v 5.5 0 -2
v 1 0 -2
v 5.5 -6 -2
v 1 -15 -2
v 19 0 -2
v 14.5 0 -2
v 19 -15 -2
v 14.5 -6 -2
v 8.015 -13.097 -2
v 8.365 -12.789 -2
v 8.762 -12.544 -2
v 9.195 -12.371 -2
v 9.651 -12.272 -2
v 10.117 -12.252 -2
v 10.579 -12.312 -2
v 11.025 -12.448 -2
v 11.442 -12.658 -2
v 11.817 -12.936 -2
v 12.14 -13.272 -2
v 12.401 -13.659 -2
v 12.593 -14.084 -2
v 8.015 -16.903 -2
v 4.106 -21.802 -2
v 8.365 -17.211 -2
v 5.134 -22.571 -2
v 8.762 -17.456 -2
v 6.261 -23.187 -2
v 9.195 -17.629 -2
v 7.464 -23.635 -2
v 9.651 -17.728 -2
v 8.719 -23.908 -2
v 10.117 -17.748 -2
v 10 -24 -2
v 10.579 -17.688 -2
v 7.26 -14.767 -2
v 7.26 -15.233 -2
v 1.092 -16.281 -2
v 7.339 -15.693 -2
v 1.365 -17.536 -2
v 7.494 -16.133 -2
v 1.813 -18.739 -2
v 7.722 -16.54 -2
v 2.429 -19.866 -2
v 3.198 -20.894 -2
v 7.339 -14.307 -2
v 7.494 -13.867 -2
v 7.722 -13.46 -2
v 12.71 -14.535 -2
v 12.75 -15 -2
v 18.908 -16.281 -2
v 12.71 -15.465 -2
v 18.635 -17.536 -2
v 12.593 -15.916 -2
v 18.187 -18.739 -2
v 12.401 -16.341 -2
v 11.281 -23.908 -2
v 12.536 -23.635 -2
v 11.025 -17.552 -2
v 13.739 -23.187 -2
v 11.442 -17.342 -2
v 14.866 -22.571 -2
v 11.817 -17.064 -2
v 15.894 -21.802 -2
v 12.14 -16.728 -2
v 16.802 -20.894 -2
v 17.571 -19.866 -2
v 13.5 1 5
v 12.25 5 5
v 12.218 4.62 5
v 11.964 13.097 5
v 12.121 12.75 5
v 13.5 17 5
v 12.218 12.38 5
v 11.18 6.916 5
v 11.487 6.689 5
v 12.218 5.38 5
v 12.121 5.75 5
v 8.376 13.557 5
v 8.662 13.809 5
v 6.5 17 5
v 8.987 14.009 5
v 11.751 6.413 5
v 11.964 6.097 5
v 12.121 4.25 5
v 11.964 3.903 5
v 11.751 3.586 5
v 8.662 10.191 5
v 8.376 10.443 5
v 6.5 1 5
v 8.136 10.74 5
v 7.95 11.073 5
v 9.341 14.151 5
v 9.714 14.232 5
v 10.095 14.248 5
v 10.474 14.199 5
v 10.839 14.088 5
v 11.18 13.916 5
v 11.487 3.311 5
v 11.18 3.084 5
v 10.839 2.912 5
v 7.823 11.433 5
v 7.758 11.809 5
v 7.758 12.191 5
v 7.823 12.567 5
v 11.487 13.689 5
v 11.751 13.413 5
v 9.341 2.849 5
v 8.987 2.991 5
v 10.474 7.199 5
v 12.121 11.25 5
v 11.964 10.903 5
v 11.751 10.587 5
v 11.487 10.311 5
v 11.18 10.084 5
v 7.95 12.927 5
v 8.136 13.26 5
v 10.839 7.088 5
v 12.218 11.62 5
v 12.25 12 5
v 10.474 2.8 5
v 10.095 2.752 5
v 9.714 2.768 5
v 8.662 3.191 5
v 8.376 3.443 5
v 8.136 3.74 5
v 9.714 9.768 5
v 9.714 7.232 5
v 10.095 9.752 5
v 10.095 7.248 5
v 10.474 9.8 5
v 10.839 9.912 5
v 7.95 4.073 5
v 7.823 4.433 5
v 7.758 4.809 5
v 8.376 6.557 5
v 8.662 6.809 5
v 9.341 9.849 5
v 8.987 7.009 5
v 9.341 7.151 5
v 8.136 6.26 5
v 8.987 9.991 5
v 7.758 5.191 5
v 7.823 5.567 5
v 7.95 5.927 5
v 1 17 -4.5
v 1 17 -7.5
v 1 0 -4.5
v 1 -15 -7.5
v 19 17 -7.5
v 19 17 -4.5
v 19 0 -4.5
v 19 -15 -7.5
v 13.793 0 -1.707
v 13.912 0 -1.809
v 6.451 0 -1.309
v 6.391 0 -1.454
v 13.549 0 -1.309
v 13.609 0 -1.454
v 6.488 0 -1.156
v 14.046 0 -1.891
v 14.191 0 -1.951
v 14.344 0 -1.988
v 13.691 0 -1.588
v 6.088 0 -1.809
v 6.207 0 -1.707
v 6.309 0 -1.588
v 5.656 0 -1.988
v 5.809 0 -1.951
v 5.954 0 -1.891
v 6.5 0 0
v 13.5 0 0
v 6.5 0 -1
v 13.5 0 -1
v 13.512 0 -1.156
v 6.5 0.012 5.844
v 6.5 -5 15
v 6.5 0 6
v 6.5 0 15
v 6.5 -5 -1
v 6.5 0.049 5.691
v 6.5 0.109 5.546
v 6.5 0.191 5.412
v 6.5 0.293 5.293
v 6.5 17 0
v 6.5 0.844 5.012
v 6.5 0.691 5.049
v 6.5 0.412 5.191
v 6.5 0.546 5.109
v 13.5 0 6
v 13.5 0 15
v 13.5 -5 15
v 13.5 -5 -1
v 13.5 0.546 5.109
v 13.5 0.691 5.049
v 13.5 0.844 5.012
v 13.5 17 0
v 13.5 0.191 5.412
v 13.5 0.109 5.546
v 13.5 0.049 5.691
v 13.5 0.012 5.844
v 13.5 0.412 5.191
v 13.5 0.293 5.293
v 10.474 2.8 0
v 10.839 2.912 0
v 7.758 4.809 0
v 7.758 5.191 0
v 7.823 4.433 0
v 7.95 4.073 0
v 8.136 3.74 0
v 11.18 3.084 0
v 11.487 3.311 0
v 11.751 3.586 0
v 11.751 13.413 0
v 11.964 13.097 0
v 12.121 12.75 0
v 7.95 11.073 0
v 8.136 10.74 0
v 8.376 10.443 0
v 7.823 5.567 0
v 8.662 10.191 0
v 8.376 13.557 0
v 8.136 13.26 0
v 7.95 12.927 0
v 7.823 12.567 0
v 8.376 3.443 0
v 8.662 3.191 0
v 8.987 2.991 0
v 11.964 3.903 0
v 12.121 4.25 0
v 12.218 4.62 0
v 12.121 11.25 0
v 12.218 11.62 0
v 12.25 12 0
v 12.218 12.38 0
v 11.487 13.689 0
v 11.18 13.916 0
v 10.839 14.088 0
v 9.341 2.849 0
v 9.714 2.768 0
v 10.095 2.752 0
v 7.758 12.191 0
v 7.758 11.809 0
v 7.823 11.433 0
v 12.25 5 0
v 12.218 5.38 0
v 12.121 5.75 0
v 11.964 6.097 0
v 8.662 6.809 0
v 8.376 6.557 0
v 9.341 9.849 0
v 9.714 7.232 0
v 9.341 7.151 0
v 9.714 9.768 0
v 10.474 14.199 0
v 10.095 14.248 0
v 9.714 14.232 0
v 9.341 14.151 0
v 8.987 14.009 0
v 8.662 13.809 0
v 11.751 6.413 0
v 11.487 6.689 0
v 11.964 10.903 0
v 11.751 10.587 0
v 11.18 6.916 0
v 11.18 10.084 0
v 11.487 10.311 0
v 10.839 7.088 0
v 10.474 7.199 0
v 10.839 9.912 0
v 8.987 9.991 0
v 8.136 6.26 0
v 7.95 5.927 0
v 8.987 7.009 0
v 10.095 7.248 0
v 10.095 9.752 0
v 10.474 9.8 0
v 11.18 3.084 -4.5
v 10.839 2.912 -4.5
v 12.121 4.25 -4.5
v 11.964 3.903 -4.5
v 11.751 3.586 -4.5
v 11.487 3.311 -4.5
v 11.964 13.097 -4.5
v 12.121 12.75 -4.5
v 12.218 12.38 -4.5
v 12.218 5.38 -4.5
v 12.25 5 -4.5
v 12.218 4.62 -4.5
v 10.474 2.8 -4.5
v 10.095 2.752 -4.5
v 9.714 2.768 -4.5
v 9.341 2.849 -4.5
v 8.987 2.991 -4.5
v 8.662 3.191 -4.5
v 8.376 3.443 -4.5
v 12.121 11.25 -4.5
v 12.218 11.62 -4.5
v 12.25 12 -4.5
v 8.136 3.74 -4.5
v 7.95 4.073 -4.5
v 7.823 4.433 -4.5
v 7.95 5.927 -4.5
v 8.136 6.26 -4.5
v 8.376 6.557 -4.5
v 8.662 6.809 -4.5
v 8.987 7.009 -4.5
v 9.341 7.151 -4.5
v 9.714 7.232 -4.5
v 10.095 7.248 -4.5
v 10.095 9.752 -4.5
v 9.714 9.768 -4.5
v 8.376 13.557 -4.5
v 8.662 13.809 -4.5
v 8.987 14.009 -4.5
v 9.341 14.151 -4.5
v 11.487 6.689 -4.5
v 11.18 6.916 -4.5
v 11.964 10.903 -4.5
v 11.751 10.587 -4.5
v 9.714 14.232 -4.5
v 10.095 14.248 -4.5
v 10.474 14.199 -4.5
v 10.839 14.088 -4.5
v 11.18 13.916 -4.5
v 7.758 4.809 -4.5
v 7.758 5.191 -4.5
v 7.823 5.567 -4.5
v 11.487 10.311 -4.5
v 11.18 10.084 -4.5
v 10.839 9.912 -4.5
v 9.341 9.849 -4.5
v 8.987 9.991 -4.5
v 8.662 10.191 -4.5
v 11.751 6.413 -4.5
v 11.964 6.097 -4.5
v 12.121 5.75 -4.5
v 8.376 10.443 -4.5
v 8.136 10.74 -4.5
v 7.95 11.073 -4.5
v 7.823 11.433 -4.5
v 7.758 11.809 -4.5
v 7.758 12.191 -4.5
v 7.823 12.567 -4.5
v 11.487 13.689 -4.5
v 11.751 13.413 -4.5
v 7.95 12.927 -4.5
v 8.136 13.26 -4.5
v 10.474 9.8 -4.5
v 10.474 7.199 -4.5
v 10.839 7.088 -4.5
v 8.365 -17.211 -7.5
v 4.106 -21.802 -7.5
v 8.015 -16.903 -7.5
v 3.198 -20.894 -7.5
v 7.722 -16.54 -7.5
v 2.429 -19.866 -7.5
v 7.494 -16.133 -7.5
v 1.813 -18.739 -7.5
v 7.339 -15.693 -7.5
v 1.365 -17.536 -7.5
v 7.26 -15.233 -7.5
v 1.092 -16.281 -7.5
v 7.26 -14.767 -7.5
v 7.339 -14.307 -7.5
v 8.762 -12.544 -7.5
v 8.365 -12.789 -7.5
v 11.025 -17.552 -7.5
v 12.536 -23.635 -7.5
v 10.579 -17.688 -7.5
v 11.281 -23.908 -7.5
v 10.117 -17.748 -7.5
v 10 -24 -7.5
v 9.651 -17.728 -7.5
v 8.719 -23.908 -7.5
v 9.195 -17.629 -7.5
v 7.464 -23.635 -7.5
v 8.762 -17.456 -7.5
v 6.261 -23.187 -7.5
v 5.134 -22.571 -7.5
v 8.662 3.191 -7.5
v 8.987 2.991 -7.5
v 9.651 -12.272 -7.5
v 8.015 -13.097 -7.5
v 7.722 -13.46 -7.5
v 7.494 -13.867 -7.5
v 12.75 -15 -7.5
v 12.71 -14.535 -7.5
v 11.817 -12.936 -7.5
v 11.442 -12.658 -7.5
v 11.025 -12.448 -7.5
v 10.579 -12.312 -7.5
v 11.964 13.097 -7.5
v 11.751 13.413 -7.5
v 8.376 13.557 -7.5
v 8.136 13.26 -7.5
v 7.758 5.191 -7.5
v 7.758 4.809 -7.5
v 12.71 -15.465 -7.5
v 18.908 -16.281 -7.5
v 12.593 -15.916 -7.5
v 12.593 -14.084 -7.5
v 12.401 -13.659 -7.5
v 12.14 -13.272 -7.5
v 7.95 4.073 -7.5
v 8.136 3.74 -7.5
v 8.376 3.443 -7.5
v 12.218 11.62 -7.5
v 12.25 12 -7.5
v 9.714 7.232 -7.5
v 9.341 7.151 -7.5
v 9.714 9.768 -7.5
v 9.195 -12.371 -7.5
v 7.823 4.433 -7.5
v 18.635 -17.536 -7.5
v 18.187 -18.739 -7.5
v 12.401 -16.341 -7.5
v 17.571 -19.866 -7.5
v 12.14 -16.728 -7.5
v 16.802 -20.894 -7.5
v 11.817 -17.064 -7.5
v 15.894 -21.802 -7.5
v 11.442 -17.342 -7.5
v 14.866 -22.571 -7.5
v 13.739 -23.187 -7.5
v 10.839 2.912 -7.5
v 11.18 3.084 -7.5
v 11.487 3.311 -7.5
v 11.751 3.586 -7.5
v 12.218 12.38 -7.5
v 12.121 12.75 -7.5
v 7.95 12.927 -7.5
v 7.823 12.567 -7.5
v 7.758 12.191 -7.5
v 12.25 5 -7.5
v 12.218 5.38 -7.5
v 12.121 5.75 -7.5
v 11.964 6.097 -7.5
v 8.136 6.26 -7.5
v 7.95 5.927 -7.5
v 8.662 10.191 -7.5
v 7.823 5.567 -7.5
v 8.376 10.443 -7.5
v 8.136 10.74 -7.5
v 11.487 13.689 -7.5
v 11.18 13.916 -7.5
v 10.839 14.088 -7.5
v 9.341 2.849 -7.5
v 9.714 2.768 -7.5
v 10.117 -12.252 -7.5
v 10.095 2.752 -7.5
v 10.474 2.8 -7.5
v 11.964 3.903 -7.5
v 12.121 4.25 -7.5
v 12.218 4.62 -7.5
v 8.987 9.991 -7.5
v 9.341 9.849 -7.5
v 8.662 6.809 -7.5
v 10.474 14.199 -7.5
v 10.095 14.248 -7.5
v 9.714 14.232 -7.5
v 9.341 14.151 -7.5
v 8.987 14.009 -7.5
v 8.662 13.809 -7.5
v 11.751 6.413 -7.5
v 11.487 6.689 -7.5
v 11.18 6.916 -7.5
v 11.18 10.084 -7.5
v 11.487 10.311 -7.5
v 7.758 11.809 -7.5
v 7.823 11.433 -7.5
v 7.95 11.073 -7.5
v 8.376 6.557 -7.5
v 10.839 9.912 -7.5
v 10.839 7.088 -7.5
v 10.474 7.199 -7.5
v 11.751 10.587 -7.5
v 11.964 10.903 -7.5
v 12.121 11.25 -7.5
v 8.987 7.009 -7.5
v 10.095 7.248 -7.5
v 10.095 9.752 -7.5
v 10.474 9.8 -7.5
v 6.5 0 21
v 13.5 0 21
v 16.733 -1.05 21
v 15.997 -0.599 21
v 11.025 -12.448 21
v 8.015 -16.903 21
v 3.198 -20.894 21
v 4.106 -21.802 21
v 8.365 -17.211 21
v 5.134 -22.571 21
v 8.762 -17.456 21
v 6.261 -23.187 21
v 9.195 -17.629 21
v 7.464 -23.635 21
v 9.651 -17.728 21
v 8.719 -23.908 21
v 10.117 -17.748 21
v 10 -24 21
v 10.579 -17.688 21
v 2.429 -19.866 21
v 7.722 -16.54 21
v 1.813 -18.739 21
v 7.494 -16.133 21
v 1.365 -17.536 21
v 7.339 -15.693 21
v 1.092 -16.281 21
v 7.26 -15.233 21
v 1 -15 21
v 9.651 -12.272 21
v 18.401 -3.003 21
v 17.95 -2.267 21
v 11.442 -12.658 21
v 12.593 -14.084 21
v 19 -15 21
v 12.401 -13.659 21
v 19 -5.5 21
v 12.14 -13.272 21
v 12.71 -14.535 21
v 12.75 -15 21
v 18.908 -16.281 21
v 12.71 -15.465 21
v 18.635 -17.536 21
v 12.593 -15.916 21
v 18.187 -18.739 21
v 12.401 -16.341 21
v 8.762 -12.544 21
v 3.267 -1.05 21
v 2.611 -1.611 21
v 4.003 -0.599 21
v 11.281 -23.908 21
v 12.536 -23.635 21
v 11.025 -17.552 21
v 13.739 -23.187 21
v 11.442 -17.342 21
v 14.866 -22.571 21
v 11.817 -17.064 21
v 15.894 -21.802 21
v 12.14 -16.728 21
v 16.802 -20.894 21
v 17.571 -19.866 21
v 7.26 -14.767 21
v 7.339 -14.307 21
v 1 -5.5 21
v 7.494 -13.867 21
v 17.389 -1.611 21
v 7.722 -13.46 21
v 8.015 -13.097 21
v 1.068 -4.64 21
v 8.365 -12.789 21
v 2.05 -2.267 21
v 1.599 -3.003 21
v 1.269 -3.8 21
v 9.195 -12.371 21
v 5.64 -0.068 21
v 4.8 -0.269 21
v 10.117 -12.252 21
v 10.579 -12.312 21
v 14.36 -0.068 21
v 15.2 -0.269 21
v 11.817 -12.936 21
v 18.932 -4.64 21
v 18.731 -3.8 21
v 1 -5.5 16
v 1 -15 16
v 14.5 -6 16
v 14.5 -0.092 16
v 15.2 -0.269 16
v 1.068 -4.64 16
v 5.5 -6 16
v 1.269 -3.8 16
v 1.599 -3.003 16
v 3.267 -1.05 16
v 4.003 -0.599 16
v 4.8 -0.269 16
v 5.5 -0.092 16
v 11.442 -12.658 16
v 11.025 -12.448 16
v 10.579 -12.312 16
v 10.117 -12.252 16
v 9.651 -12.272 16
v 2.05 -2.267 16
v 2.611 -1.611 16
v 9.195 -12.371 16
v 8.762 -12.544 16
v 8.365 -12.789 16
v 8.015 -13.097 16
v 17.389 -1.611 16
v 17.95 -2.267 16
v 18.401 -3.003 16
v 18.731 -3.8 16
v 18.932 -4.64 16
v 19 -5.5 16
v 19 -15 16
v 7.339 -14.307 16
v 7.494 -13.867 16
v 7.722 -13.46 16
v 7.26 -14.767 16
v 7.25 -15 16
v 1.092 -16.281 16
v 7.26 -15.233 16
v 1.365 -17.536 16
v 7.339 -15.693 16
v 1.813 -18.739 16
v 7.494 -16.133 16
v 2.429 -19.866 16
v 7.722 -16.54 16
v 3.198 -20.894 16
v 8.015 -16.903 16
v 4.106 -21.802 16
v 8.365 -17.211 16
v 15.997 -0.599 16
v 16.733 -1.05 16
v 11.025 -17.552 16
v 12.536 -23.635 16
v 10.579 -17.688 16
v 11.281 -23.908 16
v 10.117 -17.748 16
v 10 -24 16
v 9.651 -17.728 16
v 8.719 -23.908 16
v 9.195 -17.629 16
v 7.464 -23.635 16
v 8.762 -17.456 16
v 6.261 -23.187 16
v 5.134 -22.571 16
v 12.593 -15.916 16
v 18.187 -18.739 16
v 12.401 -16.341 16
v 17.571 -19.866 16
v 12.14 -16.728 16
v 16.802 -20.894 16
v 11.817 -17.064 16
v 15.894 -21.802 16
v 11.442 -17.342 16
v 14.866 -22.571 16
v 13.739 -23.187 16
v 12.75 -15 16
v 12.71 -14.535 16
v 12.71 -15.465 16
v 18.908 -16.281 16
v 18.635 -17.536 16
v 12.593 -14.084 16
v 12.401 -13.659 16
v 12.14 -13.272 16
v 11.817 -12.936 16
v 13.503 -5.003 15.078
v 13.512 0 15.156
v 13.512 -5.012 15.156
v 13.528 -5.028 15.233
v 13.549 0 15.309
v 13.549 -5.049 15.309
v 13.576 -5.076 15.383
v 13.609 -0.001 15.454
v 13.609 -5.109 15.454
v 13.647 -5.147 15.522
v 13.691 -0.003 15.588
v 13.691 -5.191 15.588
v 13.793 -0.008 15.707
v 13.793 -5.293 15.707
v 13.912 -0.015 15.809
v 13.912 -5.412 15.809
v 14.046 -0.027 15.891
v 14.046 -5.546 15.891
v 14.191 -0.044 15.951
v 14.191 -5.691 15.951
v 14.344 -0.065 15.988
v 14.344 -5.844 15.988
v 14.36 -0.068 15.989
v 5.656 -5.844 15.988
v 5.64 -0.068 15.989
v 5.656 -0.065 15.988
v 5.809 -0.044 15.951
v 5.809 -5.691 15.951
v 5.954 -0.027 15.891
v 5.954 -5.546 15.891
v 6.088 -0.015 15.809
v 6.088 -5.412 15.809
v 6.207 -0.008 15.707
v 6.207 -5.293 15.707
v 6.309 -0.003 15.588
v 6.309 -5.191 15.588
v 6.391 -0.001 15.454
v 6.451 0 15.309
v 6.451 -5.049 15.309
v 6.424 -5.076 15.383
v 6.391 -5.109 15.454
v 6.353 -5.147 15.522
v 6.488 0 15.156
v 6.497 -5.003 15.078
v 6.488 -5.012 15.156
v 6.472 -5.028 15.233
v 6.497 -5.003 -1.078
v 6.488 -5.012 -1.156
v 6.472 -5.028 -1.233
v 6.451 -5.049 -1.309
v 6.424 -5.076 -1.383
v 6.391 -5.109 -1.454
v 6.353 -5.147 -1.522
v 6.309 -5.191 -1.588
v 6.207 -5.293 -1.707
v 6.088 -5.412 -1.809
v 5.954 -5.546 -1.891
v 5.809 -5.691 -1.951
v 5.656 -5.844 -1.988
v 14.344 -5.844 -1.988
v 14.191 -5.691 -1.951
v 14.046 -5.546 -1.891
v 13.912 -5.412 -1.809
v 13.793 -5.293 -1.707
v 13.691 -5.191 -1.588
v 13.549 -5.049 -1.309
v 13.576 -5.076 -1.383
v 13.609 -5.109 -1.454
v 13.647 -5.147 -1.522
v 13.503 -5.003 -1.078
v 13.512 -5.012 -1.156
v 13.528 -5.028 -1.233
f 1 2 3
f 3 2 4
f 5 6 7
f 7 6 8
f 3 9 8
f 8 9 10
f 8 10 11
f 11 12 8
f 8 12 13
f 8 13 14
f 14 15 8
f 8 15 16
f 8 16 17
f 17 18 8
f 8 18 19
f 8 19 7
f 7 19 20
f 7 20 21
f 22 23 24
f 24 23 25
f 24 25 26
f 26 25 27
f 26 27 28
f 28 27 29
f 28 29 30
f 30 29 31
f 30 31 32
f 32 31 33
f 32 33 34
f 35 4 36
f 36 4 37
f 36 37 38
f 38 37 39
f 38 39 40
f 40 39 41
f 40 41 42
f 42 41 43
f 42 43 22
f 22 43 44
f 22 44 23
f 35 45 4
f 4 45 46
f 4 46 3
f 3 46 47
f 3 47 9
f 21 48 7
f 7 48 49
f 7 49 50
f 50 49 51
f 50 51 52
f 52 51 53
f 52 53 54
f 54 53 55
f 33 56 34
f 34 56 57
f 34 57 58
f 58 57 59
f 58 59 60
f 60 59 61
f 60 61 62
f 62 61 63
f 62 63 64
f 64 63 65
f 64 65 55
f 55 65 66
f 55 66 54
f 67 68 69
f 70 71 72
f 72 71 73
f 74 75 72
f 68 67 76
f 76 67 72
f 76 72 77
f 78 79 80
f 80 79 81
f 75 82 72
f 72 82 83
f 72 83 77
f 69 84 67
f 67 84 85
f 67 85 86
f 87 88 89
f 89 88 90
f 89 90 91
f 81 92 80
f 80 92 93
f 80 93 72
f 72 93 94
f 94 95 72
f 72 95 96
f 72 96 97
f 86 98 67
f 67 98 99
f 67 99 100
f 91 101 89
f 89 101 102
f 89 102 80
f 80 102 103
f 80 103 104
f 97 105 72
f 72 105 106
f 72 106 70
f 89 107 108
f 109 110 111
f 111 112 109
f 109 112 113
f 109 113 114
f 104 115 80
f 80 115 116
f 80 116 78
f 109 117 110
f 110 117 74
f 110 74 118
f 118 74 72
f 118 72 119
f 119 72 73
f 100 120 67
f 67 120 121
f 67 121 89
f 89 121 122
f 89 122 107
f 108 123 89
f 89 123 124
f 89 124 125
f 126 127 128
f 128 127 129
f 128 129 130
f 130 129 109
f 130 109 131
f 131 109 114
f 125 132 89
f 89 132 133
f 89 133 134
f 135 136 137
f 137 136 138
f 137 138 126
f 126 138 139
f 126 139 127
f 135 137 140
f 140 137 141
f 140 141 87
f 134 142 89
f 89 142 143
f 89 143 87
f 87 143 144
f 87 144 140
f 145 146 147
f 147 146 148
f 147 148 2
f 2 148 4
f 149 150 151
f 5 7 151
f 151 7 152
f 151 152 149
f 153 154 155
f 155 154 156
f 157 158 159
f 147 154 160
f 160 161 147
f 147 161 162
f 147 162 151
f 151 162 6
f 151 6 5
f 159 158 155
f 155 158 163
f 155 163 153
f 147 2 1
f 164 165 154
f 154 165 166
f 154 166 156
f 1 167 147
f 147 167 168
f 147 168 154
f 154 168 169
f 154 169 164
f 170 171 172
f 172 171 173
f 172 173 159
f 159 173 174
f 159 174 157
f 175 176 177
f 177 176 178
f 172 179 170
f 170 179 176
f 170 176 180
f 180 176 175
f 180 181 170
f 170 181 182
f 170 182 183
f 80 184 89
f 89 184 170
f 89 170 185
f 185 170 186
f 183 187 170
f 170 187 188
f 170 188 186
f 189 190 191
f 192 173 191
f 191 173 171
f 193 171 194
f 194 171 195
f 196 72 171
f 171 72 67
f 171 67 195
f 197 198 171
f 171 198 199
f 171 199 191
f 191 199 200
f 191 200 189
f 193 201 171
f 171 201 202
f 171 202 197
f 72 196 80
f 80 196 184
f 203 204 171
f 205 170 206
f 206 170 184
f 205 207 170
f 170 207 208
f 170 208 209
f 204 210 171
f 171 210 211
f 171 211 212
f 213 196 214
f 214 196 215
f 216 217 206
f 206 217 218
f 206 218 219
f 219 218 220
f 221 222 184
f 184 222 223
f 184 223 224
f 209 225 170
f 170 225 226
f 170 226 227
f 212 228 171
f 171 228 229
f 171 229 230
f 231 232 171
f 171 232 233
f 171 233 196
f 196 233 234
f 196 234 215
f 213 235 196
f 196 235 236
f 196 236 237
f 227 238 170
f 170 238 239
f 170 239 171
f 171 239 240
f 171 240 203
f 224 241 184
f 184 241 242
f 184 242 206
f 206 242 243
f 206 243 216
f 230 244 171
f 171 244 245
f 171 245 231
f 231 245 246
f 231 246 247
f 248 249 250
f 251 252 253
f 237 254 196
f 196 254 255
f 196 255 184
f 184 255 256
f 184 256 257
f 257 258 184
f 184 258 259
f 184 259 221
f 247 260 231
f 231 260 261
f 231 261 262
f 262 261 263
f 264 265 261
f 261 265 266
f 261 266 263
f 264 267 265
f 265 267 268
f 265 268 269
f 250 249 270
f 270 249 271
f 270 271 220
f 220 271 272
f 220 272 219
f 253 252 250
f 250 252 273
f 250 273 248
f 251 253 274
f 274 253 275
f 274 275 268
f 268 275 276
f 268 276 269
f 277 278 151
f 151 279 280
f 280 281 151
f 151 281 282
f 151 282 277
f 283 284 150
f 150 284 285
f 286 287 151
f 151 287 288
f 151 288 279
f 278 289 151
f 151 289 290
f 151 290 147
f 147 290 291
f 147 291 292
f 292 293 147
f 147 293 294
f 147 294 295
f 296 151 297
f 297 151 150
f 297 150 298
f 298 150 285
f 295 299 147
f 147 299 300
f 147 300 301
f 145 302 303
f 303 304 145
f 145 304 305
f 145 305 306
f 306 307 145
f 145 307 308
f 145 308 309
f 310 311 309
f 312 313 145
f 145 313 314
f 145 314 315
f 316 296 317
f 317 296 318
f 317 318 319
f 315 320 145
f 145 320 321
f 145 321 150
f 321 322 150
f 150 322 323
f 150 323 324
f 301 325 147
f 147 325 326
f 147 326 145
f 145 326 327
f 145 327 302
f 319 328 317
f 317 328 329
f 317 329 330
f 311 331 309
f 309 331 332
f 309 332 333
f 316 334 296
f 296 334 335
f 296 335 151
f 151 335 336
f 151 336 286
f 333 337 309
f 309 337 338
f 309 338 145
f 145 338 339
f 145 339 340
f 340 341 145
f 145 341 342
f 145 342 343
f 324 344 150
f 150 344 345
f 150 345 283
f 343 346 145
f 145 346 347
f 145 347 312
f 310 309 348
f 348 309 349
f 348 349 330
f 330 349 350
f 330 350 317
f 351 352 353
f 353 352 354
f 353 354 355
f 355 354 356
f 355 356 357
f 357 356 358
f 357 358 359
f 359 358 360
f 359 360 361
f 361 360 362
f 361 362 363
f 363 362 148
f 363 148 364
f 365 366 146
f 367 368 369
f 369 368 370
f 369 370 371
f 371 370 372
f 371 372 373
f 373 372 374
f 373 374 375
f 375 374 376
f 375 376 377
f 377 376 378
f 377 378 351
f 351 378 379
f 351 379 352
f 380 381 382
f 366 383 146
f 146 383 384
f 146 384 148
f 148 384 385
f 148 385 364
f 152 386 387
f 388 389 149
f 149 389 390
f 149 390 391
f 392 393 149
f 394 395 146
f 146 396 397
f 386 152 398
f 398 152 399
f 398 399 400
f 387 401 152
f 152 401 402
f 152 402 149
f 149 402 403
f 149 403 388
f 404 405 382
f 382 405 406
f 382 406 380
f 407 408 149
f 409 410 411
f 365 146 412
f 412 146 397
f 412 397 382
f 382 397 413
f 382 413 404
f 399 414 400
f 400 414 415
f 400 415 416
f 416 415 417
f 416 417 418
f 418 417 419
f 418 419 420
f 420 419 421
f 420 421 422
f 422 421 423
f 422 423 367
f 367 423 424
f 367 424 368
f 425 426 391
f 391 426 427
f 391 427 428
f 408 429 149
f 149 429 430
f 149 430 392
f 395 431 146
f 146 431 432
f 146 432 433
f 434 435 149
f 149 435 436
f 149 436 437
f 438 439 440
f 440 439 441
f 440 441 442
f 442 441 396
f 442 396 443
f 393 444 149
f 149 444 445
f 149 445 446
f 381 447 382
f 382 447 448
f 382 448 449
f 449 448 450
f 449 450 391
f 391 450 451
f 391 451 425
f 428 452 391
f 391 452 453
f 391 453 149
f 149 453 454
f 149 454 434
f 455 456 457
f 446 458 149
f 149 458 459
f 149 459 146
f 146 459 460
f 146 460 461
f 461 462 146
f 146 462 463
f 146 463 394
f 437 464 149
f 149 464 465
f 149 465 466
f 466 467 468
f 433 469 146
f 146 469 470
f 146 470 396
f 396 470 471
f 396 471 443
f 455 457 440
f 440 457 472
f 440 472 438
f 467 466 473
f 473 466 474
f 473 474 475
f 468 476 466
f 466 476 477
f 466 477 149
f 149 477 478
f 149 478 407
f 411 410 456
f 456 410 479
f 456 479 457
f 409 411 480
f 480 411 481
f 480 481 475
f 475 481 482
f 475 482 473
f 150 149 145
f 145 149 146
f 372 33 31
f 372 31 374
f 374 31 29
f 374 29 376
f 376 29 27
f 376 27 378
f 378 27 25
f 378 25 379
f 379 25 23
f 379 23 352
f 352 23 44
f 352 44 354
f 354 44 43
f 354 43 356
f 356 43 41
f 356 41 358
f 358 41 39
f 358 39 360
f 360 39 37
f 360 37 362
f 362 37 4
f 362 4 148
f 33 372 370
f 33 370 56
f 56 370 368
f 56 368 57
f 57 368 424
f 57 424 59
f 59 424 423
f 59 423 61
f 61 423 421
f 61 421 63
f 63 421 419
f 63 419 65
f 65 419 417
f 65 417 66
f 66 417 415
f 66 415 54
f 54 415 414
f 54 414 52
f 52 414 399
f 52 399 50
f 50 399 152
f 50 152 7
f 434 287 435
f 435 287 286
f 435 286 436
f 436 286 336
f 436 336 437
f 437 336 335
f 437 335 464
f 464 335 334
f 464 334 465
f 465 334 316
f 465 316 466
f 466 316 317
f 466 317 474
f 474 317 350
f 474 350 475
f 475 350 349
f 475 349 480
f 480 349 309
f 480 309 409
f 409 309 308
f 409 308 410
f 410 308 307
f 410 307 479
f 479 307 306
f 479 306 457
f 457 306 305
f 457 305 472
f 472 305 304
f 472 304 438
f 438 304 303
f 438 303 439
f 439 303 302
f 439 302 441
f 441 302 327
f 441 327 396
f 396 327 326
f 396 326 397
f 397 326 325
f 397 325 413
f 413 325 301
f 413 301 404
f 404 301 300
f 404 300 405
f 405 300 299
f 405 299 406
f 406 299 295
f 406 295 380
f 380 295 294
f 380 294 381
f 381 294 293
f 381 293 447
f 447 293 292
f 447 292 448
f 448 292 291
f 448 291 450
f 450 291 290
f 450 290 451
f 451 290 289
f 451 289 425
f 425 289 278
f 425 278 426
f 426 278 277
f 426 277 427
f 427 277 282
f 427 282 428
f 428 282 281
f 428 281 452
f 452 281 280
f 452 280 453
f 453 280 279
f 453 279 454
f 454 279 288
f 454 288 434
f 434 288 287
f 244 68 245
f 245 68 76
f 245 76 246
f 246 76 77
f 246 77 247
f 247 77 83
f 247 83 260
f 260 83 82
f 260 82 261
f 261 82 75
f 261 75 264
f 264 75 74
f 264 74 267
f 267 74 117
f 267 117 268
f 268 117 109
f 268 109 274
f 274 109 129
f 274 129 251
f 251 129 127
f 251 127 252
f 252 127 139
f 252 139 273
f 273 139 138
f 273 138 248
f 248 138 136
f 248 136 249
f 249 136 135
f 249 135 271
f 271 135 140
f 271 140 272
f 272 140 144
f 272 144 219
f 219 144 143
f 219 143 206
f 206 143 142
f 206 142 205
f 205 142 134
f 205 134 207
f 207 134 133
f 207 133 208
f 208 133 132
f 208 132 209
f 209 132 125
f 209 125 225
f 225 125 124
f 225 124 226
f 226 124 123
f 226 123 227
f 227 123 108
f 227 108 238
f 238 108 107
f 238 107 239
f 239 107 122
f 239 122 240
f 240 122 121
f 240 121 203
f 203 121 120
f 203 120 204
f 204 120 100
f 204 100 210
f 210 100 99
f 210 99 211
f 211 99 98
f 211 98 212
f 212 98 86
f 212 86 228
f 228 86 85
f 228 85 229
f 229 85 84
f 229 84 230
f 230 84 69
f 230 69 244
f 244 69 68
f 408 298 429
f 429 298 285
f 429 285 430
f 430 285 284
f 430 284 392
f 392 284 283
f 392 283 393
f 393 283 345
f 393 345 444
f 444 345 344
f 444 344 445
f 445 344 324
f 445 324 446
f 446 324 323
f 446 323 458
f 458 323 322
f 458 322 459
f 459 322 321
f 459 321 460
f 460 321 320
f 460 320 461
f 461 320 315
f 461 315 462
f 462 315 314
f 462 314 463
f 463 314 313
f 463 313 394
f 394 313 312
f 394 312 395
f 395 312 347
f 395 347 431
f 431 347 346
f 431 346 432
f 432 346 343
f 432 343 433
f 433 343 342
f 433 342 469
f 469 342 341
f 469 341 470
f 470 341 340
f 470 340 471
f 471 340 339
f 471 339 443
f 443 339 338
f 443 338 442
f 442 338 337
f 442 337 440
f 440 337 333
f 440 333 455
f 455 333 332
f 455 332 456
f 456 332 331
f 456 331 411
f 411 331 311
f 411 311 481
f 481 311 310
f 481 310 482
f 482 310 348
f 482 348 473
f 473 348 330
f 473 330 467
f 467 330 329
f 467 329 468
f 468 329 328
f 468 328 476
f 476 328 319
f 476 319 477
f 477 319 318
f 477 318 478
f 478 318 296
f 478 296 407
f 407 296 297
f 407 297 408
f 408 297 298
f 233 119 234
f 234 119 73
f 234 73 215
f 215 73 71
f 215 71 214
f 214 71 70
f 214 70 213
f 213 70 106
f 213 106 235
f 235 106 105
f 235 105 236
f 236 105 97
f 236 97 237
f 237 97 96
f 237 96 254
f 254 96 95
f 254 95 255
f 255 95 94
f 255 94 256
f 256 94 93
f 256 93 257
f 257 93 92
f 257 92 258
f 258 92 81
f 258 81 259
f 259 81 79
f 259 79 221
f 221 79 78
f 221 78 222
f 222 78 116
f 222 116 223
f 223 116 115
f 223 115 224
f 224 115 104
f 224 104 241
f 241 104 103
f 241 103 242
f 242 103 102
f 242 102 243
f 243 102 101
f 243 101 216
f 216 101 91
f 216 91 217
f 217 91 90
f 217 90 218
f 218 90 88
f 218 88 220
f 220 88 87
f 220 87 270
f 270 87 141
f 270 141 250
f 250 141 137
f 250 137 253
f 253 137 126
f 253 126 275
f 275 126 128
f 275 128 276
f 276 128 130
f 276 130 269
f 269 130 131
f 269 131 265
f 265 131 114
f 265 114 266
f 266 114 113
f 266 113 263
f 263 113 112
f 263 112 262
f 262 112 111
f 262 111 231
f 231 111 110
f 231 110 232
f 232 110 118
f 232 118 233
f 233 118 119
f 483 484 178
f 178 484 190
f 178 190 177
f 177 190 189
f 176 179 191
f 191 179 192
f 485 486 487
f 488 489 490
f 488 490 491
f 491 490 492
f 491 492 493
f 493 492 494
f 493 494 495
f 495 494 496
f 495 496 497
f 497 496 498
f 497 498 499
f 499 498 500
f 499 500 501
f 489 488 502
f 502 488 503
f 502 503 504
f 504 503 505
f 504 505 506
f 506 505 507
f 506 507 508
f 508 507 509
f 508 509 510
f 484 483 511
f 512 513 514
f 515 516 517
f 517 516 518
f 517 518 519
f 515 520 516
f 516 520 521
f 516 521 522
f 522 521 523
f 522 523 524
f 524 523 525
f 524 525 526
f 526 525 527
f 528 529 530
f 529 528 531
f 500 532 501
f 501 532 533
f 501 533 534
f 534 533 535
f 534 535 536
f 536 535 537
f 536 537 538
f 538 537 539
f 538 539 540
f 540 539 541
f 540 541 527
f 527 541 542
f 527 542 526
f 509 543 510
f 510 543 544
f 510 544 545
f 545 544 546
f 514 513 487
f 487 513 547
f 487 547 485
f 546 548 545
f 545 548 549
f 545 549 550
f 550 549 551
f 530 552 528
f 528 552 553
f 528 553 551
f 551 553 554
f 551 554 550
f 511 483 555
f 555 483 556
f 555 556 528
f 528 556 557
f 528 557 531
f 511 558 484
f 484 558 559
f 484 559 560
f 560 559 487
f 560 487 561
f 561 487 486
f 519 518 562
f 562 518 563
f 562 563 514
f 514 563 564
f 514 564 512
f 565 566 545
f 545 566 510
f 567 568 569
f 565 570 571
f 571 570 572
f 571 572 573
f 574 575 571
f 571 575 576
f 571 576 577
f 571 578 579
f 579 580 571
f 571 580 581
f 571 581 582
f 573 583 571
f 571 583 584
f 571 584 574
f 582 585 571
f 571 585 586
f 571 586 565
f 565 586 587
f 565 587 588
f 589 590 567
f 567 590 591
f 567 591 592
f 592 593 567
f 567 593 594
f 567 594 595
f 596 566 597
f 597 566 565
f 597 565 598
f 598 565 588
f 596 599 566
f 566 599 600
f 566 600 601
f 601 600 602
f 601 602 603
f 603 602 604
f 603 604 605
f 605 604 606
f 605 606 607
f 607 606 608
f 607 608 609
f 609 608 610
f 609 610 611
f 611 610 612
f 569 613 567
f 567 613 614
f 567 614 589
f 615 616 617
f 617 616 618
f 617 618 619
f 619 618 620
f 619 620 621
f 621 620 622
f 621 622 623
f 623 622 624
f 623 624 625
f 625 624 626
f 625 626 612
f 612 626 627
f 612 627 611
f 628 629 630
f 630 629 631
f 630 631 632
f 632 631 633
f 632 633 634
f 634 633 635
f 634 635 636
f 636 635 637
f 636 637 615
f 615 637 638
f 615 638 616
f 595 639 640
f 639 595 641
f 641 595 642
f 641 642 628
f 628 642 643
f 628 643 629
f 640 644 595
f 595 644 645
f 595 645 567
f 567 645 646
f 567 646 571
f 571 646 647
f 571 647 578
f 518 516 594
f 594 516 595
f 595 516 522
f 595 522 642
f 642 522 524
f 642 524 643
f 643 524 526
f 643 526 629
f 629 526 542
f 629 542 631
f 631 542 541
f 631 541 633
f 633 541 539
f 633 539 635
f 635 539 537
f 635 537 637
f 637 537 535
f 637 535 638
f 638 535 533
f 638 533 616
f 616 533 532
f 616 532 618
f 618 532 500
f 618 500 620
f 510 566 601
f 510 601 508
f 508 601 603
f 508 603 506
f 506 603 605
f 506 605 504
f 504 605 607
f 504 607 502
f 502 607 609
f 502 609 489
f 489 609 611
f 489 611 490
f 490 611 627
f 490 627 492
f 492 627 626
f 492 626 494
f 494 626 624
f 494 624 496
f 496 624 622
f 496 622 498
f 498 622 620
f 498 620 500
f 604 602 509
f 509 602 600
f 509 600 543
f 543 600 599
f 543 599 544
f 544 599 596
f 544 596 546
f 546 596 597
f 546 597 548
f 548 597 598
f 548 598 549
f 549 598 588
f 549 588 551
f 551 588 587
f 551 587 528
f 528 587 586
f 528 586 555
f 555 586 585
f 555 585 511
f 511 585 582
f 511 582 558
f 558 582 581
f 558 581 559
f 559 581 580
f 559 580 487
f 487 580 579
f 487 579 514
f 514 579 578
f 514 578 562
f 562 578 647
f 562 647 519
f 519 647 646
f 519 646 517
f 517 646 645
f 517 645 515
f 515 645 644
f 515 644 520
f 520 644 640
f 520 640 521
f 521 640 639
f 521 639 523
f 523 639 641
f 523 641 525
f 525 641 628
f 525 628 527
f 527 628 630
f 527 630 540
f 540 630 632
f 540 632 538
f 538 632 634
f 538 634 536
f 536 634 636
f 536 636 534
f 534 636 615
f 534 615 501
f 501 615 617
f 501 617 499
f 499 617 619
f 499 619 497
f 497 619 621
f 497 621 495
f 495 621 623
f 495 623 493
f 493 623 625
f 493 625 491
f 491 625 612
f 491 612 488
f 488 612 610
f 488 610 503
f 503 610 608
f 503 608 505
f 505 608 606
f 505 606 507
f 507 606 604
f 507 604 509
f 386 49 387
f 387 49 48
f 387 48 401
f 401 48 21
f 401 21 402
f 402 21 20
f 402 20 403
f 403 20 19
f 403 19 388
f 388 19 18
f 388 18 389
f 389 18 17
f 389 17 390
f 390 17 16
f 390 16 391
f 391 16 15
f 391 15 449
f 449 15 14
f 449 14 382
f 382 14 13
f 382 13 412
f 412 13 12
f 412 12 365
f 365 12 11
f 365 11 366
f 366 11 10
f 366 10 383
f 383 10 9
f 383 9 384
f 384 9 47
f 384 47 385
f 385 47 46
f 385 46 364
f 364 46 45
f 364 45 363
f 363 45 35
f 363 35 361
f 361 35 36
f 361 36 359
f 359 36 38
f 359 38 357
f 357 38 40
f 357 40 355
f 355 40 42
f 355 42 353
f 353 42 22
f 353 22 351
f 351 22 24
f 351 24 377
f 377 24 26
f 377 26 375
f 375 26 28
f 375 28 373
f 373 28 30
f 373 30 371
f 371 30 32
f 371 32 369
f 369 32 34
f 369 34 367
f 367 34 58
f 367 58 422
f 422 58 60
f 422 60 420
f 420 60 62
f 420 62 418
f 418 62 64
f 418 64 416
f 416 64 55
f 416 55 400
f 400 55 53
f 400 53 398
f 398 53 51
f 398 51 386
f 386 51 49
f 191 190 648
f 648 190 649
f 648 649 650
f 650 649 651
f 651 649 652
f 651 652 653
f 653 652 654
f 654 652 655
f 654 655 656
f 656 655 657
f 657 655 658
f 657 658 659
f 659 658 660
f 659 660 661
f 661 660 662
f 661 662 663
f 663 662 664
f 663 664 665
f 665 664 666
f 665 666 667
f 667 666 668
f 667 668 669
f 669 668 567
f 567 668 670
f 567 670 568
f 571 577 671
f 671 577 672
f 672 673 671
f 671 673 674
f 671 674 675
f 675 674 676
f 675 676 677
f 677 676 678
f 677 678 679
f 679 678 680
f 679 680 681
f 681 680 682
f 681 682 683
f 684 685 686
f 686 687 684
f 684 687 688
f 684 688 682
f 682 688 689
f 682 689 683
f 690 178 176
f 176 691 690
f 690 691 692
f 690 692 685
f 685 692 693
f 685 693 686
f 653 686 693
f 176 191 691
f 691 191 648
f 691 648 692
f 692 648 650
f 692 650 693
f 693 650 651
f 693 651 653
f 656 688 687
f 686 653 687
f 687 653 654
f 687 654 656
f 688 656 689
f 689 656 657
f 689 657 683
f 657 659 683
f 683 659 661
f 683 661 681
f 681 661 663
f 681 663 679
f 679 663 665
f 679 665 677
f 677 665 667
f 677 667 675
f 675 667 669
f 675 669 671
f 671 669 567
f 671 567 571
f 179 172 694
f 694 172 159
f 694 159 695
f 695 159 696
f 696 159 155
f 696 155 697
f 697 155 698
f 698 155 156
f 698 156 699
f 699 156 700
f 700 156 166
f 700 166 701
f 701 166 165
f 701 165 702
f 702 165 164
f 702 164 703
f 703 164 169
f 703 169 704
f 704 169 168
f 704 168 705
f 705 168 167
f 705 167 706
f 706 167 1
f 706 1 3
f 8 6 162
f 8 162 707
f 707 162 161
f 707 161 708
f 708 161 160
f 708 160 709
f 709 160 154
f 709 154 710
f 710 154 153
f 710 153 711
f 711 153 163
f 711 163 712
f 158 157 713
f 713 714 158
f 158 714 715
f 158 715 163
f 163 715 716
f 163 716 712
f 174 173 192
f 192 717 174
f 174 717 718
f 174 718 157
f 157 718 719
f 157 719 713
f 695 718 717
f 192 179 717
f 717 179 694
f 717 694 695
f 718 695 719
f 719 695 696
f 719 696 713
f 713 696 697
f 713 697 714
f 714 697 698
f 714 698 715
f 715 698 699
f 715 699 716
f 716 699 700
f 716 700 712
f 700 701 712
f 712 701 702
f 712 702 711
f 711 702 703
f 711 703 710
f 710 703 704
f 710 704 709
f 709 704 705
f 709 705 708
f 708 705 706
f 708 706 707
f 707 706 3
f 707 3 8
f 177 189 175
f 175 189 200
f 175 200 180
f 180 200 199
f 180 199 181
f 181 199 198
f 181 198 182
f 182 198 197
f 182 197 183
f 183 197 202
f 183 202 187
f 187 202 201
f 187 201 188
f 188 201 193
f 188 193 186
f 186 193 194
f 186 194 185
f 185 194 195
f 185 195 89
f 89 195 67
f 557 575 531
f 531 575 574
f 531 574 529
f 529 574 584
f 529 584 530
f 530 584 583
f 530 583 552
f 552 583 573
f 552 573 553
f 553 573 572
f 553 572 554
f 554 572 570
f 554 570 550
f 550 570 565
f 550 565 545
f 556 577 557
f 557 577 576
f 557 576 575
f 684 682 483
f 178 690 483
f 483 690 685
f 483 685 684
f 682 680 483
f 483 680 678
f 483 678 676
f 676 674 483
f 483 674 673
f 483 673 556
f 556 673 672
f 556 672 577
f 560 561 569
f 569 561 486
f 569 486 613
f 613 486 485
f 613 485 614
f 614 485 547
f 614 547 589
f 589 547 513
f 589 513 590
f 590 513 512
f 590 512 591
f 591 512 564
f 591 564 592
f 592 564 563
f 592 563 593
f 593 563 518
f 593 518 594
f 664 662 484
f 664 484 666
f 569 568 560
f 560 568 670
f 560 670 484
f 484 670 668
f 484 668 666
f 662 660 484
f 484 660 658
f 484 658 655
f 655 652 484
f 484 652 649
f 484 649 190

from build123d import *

# Parameters (mm, degrees)
ESQUISSE1_W             = 20
ESQUISSE1_H             = 17
ESQUISSE1_R             = 2.1
BOSS_EXTRU_1_DEPTH      = 5
ESQUISSE2_W             = 18
ESQUISSE2_H             = 3
BOSS_EXTRU_3_DEPTH      = 24
ESQUISSE5_W             = 6.5
ESQUISSE5_H             = 17
ENL_V_MAT_EXTRU_3_DEPTH = 18
ESQUISSE10_W            = 7
ESQUISSE10_H            = 3
BOSS_EXTRU_6_DEPTH      = 10
ESQUISSE11_W            = 5.5
ESQUISSE11_H            = 2.5
ESQUISSE11_W_2          = 7
ESQUISSE11_H_2          = 0.5
BOSS_EXTRU_7_DEPTH      = 17
ESQUISSE12_W            = 18
ESQUISSE12_H            = 2.5
BOSS_EXTRU_8_DEPTH      = 24
CONG_3_R                = 9
ESQUISSE20_R            = 2.25
ENL_V_MAT_EXTRU_7_DEPTH = 18
ESQUISSE22_W            = 7
ESQUISSE22_H            = 5
BOSS_EXTRU_9_DEPTH      = 23
ESQUISSE27_W            = 5.5
ESQUISSE27_H            = 5
ESQUISSE27_W_2          = 7
BOSS_EXTRU_10_DEPTH     = 24
CONG_4_R                = 9
ESQUISSE28_R            = 2.75
ENL_V_MAT_EXTRU_8_DEPTH = 44
CONG_5_R                = 1
CONG_6_R                = 5.5


with BuildPart() as part:
    # Esquisse1 → Boss.-Extru.1 (new body)
    with BuildSketch(Plane.XY):
        with Locations((10, 8.5)):
            Rectangle(ESQUISSE1_W, ESQUISSE1_H)
        with Locations((10, 5)):
            Circle(ESQUISSE1_R, mode=Mode.SUBTRACT)
        with Locations((10, 12)):
            Circle(ESQUISSE1_R, mode=Mode.SUBTRACT)
    extrude(amount=BOSS_EXTRU_1_DEPTH)

    # Esquisse5 → Enlèv. mat.-Extru.3 (cut)
    with BuildSketch(Plane.XY.offset(5)):
        with Locations((16.75, 8.5)):
            Rectangle(ESQUISSE5_W, ESQUISSE5_H)
        with Locations((3.25, 8.5)):
            Rectangle(ESQUISSE5_W, ESQUISSE5_H)
    extrude(amount=-ENL_V_MAT_EXTRU_3_DEPTH, mode=Mode.SUBTRACT)



with BuildPart() as body_2:
    # Esquisse2 → Boss.-Extru.3 (new body)
    with BuildSketch(Plane.XZ):
        with Locations((10, -3.5)):
            Rectangle(ESQUISSE2_W, ESQUISSE2_H)
    extrude(amount=BOSS_EXTRU_3_DEPTH)


with BuildPart() as part_1:
    add(part.part)

    add(body_2.part)  # Boss.-Extru.6 merges body 2
    # Esquisse10 → Boss.-Extru.6 (add)
    with BuildSketch(Plane.XY.offset(5)):
        with Locations((10, -1.5)):
            Rectangle(ESQUISSE10_W, ESQUISSE10_H)
    extrude(amount=-BOSS_EXTRU_6_DEPTH)

    # Esquisse11 → Boss.-Extru.7 (add)
    with BuildSketch(Plane(origin=(0, 0, 0), x_dir=(1, 0, 0), z_dir=(0, 1, 0))):
        with Locations((3.75, 6.25)):
            Rectangle(ESQUISSE11_W, ESQUISSE11_H)
        with Locations((10, 6.25)):
            Rectangle(ESQUISSE11_W_2, ESQUISSE11_H)
        with Locations((16.25, 6.25)):
            Rectangle(ESQUISSE11_W, ESQUISSE11_H)
        with Locations((3.75, 4.75)):
            Rectangle(ESQUISSE11_W, ESQUISSE11_H_2)
        with Locations((10, 4.75)):
            Rectangle(ESQUISSE11_W_2, ESQUISSE11_H_2)
        with Locations((16.25, 4.75)):
            Rectangle(ESQUISSE11_W, ESQUISSE11_H_2)
    extrude(amount=BOSS_EXTRU_7_DEPTH)

    # Esquisse12 → Boss.-Extru.8 (add)
    with BuildSketch(Plane.XZ):
        with Locations((10, -6.25)):
            Rectangle(ESQUISSE12_W, ESQUISSE12_H)
    extrude(amount=BOSS_EXTRU_8_DEPTH)

    # Congé3
    cong_3_edges = [part_1.edges().sort_by_distance(p)[0] for p in [
        (19, -24, -4.75),
        (1, -24, -4.75),
    ]]
    fillet(cong_3_edges, radius=CONG_3_R - 0.0001)  # a hair under: the kernel refuses the full size

    # Esquisse20 → Enlèv. mat.-Extru.7 (cut)
    with BuildSketch(Plane.XY.offset(5)):
        with Locations((10, 5)):
            Circle(ESQUISSE20_R)
        with Locations((10, 12)):
            Circle(ESQUISSE20_R)
    extrude(amount=-ENL_V_MAT_EXTRU_7_DEPTH, mode=Mode.SUBTRACT)

    # Esquisse22 → Boss.-Extru.9 (add)
    with BuildSketch(Plane.XY.offset(-2)):
        with Locations((10, -2.5)):
            Rectangle(ESQUISSE22_W, ESQUISSE22_H)
    extrude(amount=BOSS_EXTRU_9_DEPTH)

    # Esquisse27 → Boss.-Extru.10 (add)
    with BuildSketch(Plane(origin=(0, 0, 0), x_dir=(1, 0, 0), z_dir=(0, 1, 0))):
        with Locations((3.75, -18.5)):
            Rectangle(ESQUISSE27_W, ESQUISSE27_H)
        with Locations((16.25, -18.5)):
            Rectangle(ESQUISSE27_W, ESQUISSE27_H)
        with Locations((10, -18.5)):
            Rectangle(ESQUISSE27_W_2, ESQUISSE27_H)
    extrude(amount=-BOSS_EXTRU_10_DEPTH)

    # Congé4
    cong_4_edges = [part_1.edges().sort_by_distance(p)[0] for p in [
        (1, -24, 18.5),
        (19, -24, 18.5),
    ]]
    fillet(cong_4_edges, radius=CONG_4_R - 0.0001)  # a hair under: the kernel refuses the full size

    # Esquisse28 → Enlèv. mat.-Extru.8 (cut)
    with BuildSketch(Plane.XY.offset(21)):
        with Locations((10, -15)):
            Circle(ESQUISSE28_R)
    extrude(amount=-ENL_V_MAT_EXTRU_8_DEPTH, mode=Mode.SUBTRACT)

    # Congé5
    cong_5_edges = [part_1.edges().sort_by_distance(p)[0] for p in [
        (10, 0, 5),
        (10, -5, -2),
        (10, -5, 16),
        (6.5, -2.5, 16),
        (13.5, -2.5, 16),
        (6.5, -2.5, -2),
        (13.5, -2.5, -2),
    ]]
    fillet(cong_5_edges, radius=CONG_5_R)

    # Congé6
    cong_6_edges = [part_1.edges().sort_by_distance(p)[0] for p in [
        (1, 0, 18.5),
        (19, 0, 18.5),
    ]]
    fillet(cong_6_edges, radius=CONG_6_R - 0.0001)  # a hair under: the kernel refuses the full size


solid = part_1.part
